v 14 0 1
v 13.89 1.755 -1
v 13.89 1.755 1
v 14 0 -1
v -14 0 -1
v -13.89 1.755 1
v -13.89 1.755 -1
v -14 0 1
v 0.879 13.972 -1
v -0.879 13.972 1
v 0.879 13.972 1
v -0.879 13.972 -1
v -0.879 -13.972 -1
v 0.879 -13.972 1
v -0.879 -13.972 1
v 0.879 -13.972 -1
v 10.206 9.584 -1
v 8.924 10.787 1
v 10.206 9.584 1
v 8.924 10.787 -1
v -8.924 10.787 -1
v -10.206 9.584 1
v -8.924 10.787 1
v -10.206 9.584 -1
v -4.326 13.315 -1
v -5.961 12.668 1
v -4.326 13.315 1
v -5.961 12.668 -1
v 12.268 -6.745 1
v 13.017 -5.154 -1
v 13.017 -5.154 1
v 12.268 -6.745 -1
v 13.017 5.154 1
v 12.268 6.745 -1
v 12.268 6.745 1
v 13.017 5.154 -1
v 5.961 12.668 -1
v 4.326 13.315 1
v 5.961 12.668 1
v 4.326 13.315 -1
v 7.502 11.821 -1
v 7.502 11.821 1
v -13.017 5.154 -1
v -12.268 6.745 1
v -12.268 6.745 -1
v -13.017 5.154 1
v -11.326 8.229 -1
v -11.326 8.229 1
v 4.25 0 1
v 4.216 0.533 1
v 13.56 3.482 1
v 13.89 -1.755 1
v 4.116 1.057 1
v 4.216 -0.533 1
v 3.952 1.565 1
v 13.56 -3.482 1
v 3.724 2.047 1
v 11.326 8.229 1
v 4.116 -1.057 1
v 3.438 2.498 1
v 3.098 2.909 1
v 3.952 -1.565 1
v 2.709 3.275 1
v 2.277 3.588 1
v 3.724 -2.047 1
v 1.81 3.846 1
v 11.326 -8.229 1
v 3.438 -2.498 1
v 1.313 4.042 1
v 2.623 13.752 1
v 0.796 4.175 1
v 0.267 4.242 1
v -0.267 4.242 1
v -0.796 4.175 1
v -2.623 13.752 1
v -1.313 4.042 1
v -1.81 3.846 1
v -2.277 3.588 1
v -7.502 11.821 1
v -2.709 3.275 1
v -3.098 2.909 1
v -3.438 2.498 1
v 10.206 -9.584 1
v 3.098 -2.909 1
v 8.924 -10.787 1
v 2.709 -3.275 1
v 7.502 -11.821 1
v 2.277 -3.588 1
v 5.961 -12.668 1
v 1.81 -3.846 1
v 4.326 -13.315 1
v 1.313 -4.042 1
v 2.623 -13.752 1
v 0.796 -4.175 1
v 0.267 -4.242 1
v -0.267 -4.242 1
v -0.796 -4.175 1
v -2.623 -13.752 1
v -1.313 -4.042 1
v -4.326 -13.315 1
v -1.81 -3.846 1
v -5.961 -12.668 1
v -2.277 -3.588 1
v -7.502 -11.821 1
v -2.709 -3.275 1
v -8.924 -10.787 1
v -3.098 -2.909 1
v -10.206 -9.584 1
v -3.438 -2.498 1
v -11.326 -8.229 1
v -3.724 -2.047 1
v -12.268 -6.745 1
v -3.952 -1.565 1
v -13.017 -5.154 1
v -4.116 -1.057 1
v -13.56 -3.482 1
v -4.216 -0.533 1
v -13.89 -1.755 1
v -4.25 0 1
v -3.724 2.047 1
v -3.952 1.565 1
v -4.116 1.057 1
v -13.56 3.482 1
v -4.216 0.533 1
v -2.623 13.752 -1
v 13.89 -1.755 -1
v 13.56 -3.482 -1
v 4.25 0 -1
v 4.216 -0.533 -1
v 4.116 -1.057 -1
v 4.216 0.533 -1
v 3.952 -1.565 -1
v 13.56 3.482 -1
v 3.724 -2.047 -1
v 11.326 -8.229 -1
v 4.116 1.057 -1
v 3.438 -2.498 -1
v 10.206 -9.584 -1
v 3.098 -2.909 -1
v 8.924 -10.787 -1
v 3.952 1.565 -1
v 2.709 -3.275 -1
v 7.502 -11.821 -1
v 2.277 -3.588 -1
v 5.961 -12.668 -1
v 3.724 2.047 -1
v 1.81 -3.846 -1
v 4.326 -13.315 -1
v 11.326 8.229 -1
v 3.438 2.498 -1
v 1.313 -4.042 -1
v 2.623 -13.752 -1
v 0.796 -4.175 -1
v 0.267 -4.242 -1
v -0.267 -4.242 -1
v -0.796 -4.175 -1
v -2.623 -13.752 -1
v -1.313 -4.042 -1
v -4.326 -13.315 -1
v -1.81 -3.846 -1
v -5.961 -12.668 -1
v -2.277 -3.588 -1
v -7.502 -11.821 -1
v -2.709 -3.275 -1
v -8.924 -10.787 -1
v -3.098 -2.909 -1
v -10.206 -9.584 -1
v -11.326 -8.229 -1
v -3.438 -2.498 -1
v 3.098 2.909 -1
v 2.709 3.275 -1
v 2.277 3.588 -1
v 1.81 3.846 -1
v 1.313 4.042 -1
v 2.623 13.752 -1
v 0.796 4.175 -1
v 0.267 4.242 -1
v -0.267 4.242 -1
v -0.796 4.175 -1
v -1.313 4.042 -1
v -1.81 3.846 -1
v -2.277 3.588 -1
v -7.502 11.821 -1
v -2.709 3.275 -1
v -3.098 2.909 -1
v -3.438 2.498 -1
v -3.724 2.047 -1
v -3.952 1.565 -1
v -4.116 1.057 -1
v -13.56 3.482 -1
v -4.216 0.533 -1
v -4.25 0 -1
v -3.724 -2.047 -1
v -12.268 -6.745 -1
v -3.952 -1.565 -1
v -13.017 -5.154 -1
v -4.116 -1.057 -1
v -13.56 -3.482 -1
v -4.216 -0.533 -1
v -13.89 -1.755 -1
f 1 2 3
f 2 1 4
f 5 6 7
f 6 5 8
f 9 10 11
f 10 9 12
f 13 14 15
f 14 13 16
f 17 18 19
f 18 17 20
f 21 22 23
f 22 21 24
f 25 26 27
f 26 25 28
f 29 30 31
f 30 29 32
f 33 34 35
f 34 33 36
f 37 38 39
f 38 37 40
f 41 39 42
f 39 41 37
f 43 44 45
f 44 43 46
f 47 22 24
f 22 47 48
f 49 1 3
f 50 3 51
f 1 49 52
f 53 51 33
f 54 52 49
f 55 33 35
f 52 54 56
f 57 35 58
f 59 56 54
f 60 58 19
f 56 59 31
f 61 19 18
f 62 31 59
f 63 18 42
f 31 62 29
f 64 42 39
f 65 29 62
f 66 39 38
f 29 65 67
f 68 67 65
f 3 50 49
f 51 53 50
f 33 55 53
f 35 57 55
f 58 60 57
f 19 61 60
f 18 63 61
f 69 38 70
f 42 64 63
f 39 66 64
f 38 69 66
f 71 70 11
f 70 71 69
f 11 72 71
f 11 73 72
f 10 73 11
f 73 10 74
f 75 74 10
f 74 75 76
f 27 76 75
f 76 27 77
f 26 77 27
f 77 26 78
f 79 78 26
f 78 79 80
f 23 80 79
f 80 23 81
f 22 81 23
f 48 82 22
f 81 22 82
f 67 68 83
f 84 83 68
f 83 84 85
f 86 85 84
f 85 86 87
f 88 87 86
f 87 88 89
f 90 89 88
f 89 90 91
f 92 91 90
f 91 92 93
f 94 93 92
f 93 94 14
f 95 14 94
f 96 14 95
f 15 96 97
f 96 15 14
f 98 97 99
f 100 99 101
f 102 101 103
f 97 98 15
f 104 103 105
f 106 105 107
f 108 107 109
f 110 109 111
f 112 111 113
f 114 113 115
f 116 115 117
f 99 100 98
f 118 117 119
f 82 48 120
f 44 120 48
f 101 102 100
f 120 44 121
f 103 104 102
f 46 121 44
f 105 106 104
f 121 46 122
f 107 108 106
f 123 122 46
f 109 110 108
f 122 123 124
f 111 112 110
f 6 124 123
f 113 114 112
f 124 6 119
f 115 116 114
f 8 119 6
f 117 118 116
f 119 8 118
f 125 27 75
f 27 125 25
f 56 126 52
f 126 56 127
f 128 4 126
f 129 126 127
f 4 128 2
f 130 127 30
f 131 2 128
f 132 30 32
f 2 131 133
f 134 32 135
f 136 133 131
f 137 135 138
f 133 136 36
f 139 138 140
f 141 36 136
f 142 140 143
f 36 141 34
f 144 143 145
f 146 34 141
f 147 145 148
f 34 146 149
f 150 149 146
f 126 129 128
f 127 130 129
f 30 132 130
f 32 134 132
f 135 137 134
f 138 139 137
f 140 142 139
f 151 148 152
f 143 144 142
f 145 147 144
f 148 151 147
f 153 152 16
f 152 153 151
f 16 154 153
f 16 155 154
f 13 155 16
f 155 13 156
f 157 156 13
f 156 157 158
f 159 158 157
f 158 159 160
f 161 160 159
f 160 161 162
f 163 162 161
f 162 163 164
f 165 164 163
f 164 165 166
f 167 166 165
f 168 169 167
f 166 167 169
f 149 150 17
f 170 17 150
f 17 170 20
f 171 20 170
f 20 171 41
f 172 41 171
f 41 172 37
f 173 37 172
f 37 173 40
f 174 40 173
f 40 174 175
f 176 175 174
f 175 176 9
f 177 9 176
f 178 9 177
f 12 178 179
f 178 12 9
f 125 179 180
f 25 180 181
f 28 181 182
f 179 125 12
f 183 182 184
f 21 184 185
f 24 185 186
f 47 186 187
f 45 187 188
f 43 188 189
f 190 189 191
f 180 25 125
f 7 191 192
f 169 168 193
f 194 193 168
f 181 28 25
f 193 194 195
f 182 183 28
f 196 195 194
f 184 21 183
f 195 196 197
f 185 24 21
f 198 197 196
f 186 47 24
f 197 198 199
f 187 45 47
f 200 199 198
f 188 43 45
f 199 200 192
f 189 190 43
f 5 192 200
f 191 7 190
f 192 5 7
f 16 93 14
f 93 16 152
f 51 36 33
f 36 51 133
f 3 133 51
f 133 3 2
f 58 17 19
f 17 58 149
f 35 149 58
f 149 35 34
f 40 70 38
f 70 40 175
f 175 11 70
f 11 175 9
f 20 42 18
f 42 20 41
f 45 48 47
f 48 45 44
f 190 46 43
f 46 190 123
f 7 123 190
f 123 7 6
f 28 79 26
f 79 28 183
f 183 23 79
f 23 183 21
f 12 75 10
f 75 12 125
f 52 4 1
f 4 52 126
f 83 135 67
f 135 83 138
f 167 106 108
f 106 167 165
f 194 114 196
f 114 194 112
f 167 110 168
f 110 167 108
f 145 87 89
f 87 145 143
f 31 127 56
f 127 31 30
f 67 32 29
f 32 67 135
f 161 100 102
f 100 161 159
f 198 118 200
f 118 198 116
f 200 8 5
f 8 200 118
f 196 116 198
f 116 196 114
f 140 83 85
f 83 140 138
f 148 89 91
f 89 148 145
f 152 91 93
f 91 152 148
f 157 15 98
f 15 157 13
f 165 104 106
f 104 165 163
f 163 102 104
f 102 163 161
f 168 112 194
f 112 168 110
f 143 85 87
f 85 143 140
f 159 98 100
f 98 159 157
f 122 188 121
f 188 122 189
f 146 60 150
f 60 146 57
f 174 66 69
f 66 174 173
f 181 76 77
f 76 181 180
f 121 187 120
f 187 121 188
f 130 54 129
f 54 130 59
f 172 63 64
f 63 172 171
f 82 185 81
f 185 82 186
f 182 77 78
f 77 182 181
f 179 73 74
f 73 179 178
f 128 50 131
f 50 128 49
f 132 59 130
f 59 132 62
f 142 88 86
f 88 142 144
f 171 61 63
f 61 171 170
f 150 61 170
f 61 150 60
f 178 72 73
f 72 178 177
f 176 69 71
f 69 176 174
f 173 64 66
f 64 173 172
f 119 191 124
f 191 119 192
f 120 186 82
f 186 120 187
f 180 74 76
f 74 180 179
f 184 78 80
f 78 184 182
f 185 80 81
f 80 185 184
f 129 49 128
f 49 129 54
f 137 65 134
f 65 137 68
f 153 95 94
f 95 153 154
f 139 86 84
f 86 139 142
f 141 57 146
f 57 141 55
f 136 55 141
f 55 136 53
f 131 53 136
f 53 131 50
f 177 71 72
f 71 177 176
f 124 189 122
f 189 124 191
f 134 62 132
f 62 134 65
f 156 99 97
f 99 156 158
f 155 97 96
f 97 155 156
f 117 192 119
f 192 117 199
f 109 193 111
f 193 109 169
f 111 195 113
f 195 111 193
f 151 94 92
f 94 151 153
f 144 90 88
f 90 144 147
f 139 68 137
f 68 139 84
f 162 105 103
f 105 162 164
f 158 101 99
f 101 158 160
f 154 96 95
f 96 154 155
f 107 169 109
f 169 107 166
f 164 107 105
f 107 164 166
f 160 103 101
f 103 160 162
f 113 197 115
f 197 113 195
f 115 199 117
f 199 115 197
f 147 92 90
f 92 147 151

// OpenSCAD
$fn = 50;


difference() {
	union() {
		translate(v = [0, 0, -1.0000000000]) {
			cylinder(h = 2, r = 14.0000000000);
		}
	}
	union() {
		translate(v = [0, 0, -100.0000000000]) {
			cylinder(h = 200, r = 4.2500000000);
		}
	}
}
